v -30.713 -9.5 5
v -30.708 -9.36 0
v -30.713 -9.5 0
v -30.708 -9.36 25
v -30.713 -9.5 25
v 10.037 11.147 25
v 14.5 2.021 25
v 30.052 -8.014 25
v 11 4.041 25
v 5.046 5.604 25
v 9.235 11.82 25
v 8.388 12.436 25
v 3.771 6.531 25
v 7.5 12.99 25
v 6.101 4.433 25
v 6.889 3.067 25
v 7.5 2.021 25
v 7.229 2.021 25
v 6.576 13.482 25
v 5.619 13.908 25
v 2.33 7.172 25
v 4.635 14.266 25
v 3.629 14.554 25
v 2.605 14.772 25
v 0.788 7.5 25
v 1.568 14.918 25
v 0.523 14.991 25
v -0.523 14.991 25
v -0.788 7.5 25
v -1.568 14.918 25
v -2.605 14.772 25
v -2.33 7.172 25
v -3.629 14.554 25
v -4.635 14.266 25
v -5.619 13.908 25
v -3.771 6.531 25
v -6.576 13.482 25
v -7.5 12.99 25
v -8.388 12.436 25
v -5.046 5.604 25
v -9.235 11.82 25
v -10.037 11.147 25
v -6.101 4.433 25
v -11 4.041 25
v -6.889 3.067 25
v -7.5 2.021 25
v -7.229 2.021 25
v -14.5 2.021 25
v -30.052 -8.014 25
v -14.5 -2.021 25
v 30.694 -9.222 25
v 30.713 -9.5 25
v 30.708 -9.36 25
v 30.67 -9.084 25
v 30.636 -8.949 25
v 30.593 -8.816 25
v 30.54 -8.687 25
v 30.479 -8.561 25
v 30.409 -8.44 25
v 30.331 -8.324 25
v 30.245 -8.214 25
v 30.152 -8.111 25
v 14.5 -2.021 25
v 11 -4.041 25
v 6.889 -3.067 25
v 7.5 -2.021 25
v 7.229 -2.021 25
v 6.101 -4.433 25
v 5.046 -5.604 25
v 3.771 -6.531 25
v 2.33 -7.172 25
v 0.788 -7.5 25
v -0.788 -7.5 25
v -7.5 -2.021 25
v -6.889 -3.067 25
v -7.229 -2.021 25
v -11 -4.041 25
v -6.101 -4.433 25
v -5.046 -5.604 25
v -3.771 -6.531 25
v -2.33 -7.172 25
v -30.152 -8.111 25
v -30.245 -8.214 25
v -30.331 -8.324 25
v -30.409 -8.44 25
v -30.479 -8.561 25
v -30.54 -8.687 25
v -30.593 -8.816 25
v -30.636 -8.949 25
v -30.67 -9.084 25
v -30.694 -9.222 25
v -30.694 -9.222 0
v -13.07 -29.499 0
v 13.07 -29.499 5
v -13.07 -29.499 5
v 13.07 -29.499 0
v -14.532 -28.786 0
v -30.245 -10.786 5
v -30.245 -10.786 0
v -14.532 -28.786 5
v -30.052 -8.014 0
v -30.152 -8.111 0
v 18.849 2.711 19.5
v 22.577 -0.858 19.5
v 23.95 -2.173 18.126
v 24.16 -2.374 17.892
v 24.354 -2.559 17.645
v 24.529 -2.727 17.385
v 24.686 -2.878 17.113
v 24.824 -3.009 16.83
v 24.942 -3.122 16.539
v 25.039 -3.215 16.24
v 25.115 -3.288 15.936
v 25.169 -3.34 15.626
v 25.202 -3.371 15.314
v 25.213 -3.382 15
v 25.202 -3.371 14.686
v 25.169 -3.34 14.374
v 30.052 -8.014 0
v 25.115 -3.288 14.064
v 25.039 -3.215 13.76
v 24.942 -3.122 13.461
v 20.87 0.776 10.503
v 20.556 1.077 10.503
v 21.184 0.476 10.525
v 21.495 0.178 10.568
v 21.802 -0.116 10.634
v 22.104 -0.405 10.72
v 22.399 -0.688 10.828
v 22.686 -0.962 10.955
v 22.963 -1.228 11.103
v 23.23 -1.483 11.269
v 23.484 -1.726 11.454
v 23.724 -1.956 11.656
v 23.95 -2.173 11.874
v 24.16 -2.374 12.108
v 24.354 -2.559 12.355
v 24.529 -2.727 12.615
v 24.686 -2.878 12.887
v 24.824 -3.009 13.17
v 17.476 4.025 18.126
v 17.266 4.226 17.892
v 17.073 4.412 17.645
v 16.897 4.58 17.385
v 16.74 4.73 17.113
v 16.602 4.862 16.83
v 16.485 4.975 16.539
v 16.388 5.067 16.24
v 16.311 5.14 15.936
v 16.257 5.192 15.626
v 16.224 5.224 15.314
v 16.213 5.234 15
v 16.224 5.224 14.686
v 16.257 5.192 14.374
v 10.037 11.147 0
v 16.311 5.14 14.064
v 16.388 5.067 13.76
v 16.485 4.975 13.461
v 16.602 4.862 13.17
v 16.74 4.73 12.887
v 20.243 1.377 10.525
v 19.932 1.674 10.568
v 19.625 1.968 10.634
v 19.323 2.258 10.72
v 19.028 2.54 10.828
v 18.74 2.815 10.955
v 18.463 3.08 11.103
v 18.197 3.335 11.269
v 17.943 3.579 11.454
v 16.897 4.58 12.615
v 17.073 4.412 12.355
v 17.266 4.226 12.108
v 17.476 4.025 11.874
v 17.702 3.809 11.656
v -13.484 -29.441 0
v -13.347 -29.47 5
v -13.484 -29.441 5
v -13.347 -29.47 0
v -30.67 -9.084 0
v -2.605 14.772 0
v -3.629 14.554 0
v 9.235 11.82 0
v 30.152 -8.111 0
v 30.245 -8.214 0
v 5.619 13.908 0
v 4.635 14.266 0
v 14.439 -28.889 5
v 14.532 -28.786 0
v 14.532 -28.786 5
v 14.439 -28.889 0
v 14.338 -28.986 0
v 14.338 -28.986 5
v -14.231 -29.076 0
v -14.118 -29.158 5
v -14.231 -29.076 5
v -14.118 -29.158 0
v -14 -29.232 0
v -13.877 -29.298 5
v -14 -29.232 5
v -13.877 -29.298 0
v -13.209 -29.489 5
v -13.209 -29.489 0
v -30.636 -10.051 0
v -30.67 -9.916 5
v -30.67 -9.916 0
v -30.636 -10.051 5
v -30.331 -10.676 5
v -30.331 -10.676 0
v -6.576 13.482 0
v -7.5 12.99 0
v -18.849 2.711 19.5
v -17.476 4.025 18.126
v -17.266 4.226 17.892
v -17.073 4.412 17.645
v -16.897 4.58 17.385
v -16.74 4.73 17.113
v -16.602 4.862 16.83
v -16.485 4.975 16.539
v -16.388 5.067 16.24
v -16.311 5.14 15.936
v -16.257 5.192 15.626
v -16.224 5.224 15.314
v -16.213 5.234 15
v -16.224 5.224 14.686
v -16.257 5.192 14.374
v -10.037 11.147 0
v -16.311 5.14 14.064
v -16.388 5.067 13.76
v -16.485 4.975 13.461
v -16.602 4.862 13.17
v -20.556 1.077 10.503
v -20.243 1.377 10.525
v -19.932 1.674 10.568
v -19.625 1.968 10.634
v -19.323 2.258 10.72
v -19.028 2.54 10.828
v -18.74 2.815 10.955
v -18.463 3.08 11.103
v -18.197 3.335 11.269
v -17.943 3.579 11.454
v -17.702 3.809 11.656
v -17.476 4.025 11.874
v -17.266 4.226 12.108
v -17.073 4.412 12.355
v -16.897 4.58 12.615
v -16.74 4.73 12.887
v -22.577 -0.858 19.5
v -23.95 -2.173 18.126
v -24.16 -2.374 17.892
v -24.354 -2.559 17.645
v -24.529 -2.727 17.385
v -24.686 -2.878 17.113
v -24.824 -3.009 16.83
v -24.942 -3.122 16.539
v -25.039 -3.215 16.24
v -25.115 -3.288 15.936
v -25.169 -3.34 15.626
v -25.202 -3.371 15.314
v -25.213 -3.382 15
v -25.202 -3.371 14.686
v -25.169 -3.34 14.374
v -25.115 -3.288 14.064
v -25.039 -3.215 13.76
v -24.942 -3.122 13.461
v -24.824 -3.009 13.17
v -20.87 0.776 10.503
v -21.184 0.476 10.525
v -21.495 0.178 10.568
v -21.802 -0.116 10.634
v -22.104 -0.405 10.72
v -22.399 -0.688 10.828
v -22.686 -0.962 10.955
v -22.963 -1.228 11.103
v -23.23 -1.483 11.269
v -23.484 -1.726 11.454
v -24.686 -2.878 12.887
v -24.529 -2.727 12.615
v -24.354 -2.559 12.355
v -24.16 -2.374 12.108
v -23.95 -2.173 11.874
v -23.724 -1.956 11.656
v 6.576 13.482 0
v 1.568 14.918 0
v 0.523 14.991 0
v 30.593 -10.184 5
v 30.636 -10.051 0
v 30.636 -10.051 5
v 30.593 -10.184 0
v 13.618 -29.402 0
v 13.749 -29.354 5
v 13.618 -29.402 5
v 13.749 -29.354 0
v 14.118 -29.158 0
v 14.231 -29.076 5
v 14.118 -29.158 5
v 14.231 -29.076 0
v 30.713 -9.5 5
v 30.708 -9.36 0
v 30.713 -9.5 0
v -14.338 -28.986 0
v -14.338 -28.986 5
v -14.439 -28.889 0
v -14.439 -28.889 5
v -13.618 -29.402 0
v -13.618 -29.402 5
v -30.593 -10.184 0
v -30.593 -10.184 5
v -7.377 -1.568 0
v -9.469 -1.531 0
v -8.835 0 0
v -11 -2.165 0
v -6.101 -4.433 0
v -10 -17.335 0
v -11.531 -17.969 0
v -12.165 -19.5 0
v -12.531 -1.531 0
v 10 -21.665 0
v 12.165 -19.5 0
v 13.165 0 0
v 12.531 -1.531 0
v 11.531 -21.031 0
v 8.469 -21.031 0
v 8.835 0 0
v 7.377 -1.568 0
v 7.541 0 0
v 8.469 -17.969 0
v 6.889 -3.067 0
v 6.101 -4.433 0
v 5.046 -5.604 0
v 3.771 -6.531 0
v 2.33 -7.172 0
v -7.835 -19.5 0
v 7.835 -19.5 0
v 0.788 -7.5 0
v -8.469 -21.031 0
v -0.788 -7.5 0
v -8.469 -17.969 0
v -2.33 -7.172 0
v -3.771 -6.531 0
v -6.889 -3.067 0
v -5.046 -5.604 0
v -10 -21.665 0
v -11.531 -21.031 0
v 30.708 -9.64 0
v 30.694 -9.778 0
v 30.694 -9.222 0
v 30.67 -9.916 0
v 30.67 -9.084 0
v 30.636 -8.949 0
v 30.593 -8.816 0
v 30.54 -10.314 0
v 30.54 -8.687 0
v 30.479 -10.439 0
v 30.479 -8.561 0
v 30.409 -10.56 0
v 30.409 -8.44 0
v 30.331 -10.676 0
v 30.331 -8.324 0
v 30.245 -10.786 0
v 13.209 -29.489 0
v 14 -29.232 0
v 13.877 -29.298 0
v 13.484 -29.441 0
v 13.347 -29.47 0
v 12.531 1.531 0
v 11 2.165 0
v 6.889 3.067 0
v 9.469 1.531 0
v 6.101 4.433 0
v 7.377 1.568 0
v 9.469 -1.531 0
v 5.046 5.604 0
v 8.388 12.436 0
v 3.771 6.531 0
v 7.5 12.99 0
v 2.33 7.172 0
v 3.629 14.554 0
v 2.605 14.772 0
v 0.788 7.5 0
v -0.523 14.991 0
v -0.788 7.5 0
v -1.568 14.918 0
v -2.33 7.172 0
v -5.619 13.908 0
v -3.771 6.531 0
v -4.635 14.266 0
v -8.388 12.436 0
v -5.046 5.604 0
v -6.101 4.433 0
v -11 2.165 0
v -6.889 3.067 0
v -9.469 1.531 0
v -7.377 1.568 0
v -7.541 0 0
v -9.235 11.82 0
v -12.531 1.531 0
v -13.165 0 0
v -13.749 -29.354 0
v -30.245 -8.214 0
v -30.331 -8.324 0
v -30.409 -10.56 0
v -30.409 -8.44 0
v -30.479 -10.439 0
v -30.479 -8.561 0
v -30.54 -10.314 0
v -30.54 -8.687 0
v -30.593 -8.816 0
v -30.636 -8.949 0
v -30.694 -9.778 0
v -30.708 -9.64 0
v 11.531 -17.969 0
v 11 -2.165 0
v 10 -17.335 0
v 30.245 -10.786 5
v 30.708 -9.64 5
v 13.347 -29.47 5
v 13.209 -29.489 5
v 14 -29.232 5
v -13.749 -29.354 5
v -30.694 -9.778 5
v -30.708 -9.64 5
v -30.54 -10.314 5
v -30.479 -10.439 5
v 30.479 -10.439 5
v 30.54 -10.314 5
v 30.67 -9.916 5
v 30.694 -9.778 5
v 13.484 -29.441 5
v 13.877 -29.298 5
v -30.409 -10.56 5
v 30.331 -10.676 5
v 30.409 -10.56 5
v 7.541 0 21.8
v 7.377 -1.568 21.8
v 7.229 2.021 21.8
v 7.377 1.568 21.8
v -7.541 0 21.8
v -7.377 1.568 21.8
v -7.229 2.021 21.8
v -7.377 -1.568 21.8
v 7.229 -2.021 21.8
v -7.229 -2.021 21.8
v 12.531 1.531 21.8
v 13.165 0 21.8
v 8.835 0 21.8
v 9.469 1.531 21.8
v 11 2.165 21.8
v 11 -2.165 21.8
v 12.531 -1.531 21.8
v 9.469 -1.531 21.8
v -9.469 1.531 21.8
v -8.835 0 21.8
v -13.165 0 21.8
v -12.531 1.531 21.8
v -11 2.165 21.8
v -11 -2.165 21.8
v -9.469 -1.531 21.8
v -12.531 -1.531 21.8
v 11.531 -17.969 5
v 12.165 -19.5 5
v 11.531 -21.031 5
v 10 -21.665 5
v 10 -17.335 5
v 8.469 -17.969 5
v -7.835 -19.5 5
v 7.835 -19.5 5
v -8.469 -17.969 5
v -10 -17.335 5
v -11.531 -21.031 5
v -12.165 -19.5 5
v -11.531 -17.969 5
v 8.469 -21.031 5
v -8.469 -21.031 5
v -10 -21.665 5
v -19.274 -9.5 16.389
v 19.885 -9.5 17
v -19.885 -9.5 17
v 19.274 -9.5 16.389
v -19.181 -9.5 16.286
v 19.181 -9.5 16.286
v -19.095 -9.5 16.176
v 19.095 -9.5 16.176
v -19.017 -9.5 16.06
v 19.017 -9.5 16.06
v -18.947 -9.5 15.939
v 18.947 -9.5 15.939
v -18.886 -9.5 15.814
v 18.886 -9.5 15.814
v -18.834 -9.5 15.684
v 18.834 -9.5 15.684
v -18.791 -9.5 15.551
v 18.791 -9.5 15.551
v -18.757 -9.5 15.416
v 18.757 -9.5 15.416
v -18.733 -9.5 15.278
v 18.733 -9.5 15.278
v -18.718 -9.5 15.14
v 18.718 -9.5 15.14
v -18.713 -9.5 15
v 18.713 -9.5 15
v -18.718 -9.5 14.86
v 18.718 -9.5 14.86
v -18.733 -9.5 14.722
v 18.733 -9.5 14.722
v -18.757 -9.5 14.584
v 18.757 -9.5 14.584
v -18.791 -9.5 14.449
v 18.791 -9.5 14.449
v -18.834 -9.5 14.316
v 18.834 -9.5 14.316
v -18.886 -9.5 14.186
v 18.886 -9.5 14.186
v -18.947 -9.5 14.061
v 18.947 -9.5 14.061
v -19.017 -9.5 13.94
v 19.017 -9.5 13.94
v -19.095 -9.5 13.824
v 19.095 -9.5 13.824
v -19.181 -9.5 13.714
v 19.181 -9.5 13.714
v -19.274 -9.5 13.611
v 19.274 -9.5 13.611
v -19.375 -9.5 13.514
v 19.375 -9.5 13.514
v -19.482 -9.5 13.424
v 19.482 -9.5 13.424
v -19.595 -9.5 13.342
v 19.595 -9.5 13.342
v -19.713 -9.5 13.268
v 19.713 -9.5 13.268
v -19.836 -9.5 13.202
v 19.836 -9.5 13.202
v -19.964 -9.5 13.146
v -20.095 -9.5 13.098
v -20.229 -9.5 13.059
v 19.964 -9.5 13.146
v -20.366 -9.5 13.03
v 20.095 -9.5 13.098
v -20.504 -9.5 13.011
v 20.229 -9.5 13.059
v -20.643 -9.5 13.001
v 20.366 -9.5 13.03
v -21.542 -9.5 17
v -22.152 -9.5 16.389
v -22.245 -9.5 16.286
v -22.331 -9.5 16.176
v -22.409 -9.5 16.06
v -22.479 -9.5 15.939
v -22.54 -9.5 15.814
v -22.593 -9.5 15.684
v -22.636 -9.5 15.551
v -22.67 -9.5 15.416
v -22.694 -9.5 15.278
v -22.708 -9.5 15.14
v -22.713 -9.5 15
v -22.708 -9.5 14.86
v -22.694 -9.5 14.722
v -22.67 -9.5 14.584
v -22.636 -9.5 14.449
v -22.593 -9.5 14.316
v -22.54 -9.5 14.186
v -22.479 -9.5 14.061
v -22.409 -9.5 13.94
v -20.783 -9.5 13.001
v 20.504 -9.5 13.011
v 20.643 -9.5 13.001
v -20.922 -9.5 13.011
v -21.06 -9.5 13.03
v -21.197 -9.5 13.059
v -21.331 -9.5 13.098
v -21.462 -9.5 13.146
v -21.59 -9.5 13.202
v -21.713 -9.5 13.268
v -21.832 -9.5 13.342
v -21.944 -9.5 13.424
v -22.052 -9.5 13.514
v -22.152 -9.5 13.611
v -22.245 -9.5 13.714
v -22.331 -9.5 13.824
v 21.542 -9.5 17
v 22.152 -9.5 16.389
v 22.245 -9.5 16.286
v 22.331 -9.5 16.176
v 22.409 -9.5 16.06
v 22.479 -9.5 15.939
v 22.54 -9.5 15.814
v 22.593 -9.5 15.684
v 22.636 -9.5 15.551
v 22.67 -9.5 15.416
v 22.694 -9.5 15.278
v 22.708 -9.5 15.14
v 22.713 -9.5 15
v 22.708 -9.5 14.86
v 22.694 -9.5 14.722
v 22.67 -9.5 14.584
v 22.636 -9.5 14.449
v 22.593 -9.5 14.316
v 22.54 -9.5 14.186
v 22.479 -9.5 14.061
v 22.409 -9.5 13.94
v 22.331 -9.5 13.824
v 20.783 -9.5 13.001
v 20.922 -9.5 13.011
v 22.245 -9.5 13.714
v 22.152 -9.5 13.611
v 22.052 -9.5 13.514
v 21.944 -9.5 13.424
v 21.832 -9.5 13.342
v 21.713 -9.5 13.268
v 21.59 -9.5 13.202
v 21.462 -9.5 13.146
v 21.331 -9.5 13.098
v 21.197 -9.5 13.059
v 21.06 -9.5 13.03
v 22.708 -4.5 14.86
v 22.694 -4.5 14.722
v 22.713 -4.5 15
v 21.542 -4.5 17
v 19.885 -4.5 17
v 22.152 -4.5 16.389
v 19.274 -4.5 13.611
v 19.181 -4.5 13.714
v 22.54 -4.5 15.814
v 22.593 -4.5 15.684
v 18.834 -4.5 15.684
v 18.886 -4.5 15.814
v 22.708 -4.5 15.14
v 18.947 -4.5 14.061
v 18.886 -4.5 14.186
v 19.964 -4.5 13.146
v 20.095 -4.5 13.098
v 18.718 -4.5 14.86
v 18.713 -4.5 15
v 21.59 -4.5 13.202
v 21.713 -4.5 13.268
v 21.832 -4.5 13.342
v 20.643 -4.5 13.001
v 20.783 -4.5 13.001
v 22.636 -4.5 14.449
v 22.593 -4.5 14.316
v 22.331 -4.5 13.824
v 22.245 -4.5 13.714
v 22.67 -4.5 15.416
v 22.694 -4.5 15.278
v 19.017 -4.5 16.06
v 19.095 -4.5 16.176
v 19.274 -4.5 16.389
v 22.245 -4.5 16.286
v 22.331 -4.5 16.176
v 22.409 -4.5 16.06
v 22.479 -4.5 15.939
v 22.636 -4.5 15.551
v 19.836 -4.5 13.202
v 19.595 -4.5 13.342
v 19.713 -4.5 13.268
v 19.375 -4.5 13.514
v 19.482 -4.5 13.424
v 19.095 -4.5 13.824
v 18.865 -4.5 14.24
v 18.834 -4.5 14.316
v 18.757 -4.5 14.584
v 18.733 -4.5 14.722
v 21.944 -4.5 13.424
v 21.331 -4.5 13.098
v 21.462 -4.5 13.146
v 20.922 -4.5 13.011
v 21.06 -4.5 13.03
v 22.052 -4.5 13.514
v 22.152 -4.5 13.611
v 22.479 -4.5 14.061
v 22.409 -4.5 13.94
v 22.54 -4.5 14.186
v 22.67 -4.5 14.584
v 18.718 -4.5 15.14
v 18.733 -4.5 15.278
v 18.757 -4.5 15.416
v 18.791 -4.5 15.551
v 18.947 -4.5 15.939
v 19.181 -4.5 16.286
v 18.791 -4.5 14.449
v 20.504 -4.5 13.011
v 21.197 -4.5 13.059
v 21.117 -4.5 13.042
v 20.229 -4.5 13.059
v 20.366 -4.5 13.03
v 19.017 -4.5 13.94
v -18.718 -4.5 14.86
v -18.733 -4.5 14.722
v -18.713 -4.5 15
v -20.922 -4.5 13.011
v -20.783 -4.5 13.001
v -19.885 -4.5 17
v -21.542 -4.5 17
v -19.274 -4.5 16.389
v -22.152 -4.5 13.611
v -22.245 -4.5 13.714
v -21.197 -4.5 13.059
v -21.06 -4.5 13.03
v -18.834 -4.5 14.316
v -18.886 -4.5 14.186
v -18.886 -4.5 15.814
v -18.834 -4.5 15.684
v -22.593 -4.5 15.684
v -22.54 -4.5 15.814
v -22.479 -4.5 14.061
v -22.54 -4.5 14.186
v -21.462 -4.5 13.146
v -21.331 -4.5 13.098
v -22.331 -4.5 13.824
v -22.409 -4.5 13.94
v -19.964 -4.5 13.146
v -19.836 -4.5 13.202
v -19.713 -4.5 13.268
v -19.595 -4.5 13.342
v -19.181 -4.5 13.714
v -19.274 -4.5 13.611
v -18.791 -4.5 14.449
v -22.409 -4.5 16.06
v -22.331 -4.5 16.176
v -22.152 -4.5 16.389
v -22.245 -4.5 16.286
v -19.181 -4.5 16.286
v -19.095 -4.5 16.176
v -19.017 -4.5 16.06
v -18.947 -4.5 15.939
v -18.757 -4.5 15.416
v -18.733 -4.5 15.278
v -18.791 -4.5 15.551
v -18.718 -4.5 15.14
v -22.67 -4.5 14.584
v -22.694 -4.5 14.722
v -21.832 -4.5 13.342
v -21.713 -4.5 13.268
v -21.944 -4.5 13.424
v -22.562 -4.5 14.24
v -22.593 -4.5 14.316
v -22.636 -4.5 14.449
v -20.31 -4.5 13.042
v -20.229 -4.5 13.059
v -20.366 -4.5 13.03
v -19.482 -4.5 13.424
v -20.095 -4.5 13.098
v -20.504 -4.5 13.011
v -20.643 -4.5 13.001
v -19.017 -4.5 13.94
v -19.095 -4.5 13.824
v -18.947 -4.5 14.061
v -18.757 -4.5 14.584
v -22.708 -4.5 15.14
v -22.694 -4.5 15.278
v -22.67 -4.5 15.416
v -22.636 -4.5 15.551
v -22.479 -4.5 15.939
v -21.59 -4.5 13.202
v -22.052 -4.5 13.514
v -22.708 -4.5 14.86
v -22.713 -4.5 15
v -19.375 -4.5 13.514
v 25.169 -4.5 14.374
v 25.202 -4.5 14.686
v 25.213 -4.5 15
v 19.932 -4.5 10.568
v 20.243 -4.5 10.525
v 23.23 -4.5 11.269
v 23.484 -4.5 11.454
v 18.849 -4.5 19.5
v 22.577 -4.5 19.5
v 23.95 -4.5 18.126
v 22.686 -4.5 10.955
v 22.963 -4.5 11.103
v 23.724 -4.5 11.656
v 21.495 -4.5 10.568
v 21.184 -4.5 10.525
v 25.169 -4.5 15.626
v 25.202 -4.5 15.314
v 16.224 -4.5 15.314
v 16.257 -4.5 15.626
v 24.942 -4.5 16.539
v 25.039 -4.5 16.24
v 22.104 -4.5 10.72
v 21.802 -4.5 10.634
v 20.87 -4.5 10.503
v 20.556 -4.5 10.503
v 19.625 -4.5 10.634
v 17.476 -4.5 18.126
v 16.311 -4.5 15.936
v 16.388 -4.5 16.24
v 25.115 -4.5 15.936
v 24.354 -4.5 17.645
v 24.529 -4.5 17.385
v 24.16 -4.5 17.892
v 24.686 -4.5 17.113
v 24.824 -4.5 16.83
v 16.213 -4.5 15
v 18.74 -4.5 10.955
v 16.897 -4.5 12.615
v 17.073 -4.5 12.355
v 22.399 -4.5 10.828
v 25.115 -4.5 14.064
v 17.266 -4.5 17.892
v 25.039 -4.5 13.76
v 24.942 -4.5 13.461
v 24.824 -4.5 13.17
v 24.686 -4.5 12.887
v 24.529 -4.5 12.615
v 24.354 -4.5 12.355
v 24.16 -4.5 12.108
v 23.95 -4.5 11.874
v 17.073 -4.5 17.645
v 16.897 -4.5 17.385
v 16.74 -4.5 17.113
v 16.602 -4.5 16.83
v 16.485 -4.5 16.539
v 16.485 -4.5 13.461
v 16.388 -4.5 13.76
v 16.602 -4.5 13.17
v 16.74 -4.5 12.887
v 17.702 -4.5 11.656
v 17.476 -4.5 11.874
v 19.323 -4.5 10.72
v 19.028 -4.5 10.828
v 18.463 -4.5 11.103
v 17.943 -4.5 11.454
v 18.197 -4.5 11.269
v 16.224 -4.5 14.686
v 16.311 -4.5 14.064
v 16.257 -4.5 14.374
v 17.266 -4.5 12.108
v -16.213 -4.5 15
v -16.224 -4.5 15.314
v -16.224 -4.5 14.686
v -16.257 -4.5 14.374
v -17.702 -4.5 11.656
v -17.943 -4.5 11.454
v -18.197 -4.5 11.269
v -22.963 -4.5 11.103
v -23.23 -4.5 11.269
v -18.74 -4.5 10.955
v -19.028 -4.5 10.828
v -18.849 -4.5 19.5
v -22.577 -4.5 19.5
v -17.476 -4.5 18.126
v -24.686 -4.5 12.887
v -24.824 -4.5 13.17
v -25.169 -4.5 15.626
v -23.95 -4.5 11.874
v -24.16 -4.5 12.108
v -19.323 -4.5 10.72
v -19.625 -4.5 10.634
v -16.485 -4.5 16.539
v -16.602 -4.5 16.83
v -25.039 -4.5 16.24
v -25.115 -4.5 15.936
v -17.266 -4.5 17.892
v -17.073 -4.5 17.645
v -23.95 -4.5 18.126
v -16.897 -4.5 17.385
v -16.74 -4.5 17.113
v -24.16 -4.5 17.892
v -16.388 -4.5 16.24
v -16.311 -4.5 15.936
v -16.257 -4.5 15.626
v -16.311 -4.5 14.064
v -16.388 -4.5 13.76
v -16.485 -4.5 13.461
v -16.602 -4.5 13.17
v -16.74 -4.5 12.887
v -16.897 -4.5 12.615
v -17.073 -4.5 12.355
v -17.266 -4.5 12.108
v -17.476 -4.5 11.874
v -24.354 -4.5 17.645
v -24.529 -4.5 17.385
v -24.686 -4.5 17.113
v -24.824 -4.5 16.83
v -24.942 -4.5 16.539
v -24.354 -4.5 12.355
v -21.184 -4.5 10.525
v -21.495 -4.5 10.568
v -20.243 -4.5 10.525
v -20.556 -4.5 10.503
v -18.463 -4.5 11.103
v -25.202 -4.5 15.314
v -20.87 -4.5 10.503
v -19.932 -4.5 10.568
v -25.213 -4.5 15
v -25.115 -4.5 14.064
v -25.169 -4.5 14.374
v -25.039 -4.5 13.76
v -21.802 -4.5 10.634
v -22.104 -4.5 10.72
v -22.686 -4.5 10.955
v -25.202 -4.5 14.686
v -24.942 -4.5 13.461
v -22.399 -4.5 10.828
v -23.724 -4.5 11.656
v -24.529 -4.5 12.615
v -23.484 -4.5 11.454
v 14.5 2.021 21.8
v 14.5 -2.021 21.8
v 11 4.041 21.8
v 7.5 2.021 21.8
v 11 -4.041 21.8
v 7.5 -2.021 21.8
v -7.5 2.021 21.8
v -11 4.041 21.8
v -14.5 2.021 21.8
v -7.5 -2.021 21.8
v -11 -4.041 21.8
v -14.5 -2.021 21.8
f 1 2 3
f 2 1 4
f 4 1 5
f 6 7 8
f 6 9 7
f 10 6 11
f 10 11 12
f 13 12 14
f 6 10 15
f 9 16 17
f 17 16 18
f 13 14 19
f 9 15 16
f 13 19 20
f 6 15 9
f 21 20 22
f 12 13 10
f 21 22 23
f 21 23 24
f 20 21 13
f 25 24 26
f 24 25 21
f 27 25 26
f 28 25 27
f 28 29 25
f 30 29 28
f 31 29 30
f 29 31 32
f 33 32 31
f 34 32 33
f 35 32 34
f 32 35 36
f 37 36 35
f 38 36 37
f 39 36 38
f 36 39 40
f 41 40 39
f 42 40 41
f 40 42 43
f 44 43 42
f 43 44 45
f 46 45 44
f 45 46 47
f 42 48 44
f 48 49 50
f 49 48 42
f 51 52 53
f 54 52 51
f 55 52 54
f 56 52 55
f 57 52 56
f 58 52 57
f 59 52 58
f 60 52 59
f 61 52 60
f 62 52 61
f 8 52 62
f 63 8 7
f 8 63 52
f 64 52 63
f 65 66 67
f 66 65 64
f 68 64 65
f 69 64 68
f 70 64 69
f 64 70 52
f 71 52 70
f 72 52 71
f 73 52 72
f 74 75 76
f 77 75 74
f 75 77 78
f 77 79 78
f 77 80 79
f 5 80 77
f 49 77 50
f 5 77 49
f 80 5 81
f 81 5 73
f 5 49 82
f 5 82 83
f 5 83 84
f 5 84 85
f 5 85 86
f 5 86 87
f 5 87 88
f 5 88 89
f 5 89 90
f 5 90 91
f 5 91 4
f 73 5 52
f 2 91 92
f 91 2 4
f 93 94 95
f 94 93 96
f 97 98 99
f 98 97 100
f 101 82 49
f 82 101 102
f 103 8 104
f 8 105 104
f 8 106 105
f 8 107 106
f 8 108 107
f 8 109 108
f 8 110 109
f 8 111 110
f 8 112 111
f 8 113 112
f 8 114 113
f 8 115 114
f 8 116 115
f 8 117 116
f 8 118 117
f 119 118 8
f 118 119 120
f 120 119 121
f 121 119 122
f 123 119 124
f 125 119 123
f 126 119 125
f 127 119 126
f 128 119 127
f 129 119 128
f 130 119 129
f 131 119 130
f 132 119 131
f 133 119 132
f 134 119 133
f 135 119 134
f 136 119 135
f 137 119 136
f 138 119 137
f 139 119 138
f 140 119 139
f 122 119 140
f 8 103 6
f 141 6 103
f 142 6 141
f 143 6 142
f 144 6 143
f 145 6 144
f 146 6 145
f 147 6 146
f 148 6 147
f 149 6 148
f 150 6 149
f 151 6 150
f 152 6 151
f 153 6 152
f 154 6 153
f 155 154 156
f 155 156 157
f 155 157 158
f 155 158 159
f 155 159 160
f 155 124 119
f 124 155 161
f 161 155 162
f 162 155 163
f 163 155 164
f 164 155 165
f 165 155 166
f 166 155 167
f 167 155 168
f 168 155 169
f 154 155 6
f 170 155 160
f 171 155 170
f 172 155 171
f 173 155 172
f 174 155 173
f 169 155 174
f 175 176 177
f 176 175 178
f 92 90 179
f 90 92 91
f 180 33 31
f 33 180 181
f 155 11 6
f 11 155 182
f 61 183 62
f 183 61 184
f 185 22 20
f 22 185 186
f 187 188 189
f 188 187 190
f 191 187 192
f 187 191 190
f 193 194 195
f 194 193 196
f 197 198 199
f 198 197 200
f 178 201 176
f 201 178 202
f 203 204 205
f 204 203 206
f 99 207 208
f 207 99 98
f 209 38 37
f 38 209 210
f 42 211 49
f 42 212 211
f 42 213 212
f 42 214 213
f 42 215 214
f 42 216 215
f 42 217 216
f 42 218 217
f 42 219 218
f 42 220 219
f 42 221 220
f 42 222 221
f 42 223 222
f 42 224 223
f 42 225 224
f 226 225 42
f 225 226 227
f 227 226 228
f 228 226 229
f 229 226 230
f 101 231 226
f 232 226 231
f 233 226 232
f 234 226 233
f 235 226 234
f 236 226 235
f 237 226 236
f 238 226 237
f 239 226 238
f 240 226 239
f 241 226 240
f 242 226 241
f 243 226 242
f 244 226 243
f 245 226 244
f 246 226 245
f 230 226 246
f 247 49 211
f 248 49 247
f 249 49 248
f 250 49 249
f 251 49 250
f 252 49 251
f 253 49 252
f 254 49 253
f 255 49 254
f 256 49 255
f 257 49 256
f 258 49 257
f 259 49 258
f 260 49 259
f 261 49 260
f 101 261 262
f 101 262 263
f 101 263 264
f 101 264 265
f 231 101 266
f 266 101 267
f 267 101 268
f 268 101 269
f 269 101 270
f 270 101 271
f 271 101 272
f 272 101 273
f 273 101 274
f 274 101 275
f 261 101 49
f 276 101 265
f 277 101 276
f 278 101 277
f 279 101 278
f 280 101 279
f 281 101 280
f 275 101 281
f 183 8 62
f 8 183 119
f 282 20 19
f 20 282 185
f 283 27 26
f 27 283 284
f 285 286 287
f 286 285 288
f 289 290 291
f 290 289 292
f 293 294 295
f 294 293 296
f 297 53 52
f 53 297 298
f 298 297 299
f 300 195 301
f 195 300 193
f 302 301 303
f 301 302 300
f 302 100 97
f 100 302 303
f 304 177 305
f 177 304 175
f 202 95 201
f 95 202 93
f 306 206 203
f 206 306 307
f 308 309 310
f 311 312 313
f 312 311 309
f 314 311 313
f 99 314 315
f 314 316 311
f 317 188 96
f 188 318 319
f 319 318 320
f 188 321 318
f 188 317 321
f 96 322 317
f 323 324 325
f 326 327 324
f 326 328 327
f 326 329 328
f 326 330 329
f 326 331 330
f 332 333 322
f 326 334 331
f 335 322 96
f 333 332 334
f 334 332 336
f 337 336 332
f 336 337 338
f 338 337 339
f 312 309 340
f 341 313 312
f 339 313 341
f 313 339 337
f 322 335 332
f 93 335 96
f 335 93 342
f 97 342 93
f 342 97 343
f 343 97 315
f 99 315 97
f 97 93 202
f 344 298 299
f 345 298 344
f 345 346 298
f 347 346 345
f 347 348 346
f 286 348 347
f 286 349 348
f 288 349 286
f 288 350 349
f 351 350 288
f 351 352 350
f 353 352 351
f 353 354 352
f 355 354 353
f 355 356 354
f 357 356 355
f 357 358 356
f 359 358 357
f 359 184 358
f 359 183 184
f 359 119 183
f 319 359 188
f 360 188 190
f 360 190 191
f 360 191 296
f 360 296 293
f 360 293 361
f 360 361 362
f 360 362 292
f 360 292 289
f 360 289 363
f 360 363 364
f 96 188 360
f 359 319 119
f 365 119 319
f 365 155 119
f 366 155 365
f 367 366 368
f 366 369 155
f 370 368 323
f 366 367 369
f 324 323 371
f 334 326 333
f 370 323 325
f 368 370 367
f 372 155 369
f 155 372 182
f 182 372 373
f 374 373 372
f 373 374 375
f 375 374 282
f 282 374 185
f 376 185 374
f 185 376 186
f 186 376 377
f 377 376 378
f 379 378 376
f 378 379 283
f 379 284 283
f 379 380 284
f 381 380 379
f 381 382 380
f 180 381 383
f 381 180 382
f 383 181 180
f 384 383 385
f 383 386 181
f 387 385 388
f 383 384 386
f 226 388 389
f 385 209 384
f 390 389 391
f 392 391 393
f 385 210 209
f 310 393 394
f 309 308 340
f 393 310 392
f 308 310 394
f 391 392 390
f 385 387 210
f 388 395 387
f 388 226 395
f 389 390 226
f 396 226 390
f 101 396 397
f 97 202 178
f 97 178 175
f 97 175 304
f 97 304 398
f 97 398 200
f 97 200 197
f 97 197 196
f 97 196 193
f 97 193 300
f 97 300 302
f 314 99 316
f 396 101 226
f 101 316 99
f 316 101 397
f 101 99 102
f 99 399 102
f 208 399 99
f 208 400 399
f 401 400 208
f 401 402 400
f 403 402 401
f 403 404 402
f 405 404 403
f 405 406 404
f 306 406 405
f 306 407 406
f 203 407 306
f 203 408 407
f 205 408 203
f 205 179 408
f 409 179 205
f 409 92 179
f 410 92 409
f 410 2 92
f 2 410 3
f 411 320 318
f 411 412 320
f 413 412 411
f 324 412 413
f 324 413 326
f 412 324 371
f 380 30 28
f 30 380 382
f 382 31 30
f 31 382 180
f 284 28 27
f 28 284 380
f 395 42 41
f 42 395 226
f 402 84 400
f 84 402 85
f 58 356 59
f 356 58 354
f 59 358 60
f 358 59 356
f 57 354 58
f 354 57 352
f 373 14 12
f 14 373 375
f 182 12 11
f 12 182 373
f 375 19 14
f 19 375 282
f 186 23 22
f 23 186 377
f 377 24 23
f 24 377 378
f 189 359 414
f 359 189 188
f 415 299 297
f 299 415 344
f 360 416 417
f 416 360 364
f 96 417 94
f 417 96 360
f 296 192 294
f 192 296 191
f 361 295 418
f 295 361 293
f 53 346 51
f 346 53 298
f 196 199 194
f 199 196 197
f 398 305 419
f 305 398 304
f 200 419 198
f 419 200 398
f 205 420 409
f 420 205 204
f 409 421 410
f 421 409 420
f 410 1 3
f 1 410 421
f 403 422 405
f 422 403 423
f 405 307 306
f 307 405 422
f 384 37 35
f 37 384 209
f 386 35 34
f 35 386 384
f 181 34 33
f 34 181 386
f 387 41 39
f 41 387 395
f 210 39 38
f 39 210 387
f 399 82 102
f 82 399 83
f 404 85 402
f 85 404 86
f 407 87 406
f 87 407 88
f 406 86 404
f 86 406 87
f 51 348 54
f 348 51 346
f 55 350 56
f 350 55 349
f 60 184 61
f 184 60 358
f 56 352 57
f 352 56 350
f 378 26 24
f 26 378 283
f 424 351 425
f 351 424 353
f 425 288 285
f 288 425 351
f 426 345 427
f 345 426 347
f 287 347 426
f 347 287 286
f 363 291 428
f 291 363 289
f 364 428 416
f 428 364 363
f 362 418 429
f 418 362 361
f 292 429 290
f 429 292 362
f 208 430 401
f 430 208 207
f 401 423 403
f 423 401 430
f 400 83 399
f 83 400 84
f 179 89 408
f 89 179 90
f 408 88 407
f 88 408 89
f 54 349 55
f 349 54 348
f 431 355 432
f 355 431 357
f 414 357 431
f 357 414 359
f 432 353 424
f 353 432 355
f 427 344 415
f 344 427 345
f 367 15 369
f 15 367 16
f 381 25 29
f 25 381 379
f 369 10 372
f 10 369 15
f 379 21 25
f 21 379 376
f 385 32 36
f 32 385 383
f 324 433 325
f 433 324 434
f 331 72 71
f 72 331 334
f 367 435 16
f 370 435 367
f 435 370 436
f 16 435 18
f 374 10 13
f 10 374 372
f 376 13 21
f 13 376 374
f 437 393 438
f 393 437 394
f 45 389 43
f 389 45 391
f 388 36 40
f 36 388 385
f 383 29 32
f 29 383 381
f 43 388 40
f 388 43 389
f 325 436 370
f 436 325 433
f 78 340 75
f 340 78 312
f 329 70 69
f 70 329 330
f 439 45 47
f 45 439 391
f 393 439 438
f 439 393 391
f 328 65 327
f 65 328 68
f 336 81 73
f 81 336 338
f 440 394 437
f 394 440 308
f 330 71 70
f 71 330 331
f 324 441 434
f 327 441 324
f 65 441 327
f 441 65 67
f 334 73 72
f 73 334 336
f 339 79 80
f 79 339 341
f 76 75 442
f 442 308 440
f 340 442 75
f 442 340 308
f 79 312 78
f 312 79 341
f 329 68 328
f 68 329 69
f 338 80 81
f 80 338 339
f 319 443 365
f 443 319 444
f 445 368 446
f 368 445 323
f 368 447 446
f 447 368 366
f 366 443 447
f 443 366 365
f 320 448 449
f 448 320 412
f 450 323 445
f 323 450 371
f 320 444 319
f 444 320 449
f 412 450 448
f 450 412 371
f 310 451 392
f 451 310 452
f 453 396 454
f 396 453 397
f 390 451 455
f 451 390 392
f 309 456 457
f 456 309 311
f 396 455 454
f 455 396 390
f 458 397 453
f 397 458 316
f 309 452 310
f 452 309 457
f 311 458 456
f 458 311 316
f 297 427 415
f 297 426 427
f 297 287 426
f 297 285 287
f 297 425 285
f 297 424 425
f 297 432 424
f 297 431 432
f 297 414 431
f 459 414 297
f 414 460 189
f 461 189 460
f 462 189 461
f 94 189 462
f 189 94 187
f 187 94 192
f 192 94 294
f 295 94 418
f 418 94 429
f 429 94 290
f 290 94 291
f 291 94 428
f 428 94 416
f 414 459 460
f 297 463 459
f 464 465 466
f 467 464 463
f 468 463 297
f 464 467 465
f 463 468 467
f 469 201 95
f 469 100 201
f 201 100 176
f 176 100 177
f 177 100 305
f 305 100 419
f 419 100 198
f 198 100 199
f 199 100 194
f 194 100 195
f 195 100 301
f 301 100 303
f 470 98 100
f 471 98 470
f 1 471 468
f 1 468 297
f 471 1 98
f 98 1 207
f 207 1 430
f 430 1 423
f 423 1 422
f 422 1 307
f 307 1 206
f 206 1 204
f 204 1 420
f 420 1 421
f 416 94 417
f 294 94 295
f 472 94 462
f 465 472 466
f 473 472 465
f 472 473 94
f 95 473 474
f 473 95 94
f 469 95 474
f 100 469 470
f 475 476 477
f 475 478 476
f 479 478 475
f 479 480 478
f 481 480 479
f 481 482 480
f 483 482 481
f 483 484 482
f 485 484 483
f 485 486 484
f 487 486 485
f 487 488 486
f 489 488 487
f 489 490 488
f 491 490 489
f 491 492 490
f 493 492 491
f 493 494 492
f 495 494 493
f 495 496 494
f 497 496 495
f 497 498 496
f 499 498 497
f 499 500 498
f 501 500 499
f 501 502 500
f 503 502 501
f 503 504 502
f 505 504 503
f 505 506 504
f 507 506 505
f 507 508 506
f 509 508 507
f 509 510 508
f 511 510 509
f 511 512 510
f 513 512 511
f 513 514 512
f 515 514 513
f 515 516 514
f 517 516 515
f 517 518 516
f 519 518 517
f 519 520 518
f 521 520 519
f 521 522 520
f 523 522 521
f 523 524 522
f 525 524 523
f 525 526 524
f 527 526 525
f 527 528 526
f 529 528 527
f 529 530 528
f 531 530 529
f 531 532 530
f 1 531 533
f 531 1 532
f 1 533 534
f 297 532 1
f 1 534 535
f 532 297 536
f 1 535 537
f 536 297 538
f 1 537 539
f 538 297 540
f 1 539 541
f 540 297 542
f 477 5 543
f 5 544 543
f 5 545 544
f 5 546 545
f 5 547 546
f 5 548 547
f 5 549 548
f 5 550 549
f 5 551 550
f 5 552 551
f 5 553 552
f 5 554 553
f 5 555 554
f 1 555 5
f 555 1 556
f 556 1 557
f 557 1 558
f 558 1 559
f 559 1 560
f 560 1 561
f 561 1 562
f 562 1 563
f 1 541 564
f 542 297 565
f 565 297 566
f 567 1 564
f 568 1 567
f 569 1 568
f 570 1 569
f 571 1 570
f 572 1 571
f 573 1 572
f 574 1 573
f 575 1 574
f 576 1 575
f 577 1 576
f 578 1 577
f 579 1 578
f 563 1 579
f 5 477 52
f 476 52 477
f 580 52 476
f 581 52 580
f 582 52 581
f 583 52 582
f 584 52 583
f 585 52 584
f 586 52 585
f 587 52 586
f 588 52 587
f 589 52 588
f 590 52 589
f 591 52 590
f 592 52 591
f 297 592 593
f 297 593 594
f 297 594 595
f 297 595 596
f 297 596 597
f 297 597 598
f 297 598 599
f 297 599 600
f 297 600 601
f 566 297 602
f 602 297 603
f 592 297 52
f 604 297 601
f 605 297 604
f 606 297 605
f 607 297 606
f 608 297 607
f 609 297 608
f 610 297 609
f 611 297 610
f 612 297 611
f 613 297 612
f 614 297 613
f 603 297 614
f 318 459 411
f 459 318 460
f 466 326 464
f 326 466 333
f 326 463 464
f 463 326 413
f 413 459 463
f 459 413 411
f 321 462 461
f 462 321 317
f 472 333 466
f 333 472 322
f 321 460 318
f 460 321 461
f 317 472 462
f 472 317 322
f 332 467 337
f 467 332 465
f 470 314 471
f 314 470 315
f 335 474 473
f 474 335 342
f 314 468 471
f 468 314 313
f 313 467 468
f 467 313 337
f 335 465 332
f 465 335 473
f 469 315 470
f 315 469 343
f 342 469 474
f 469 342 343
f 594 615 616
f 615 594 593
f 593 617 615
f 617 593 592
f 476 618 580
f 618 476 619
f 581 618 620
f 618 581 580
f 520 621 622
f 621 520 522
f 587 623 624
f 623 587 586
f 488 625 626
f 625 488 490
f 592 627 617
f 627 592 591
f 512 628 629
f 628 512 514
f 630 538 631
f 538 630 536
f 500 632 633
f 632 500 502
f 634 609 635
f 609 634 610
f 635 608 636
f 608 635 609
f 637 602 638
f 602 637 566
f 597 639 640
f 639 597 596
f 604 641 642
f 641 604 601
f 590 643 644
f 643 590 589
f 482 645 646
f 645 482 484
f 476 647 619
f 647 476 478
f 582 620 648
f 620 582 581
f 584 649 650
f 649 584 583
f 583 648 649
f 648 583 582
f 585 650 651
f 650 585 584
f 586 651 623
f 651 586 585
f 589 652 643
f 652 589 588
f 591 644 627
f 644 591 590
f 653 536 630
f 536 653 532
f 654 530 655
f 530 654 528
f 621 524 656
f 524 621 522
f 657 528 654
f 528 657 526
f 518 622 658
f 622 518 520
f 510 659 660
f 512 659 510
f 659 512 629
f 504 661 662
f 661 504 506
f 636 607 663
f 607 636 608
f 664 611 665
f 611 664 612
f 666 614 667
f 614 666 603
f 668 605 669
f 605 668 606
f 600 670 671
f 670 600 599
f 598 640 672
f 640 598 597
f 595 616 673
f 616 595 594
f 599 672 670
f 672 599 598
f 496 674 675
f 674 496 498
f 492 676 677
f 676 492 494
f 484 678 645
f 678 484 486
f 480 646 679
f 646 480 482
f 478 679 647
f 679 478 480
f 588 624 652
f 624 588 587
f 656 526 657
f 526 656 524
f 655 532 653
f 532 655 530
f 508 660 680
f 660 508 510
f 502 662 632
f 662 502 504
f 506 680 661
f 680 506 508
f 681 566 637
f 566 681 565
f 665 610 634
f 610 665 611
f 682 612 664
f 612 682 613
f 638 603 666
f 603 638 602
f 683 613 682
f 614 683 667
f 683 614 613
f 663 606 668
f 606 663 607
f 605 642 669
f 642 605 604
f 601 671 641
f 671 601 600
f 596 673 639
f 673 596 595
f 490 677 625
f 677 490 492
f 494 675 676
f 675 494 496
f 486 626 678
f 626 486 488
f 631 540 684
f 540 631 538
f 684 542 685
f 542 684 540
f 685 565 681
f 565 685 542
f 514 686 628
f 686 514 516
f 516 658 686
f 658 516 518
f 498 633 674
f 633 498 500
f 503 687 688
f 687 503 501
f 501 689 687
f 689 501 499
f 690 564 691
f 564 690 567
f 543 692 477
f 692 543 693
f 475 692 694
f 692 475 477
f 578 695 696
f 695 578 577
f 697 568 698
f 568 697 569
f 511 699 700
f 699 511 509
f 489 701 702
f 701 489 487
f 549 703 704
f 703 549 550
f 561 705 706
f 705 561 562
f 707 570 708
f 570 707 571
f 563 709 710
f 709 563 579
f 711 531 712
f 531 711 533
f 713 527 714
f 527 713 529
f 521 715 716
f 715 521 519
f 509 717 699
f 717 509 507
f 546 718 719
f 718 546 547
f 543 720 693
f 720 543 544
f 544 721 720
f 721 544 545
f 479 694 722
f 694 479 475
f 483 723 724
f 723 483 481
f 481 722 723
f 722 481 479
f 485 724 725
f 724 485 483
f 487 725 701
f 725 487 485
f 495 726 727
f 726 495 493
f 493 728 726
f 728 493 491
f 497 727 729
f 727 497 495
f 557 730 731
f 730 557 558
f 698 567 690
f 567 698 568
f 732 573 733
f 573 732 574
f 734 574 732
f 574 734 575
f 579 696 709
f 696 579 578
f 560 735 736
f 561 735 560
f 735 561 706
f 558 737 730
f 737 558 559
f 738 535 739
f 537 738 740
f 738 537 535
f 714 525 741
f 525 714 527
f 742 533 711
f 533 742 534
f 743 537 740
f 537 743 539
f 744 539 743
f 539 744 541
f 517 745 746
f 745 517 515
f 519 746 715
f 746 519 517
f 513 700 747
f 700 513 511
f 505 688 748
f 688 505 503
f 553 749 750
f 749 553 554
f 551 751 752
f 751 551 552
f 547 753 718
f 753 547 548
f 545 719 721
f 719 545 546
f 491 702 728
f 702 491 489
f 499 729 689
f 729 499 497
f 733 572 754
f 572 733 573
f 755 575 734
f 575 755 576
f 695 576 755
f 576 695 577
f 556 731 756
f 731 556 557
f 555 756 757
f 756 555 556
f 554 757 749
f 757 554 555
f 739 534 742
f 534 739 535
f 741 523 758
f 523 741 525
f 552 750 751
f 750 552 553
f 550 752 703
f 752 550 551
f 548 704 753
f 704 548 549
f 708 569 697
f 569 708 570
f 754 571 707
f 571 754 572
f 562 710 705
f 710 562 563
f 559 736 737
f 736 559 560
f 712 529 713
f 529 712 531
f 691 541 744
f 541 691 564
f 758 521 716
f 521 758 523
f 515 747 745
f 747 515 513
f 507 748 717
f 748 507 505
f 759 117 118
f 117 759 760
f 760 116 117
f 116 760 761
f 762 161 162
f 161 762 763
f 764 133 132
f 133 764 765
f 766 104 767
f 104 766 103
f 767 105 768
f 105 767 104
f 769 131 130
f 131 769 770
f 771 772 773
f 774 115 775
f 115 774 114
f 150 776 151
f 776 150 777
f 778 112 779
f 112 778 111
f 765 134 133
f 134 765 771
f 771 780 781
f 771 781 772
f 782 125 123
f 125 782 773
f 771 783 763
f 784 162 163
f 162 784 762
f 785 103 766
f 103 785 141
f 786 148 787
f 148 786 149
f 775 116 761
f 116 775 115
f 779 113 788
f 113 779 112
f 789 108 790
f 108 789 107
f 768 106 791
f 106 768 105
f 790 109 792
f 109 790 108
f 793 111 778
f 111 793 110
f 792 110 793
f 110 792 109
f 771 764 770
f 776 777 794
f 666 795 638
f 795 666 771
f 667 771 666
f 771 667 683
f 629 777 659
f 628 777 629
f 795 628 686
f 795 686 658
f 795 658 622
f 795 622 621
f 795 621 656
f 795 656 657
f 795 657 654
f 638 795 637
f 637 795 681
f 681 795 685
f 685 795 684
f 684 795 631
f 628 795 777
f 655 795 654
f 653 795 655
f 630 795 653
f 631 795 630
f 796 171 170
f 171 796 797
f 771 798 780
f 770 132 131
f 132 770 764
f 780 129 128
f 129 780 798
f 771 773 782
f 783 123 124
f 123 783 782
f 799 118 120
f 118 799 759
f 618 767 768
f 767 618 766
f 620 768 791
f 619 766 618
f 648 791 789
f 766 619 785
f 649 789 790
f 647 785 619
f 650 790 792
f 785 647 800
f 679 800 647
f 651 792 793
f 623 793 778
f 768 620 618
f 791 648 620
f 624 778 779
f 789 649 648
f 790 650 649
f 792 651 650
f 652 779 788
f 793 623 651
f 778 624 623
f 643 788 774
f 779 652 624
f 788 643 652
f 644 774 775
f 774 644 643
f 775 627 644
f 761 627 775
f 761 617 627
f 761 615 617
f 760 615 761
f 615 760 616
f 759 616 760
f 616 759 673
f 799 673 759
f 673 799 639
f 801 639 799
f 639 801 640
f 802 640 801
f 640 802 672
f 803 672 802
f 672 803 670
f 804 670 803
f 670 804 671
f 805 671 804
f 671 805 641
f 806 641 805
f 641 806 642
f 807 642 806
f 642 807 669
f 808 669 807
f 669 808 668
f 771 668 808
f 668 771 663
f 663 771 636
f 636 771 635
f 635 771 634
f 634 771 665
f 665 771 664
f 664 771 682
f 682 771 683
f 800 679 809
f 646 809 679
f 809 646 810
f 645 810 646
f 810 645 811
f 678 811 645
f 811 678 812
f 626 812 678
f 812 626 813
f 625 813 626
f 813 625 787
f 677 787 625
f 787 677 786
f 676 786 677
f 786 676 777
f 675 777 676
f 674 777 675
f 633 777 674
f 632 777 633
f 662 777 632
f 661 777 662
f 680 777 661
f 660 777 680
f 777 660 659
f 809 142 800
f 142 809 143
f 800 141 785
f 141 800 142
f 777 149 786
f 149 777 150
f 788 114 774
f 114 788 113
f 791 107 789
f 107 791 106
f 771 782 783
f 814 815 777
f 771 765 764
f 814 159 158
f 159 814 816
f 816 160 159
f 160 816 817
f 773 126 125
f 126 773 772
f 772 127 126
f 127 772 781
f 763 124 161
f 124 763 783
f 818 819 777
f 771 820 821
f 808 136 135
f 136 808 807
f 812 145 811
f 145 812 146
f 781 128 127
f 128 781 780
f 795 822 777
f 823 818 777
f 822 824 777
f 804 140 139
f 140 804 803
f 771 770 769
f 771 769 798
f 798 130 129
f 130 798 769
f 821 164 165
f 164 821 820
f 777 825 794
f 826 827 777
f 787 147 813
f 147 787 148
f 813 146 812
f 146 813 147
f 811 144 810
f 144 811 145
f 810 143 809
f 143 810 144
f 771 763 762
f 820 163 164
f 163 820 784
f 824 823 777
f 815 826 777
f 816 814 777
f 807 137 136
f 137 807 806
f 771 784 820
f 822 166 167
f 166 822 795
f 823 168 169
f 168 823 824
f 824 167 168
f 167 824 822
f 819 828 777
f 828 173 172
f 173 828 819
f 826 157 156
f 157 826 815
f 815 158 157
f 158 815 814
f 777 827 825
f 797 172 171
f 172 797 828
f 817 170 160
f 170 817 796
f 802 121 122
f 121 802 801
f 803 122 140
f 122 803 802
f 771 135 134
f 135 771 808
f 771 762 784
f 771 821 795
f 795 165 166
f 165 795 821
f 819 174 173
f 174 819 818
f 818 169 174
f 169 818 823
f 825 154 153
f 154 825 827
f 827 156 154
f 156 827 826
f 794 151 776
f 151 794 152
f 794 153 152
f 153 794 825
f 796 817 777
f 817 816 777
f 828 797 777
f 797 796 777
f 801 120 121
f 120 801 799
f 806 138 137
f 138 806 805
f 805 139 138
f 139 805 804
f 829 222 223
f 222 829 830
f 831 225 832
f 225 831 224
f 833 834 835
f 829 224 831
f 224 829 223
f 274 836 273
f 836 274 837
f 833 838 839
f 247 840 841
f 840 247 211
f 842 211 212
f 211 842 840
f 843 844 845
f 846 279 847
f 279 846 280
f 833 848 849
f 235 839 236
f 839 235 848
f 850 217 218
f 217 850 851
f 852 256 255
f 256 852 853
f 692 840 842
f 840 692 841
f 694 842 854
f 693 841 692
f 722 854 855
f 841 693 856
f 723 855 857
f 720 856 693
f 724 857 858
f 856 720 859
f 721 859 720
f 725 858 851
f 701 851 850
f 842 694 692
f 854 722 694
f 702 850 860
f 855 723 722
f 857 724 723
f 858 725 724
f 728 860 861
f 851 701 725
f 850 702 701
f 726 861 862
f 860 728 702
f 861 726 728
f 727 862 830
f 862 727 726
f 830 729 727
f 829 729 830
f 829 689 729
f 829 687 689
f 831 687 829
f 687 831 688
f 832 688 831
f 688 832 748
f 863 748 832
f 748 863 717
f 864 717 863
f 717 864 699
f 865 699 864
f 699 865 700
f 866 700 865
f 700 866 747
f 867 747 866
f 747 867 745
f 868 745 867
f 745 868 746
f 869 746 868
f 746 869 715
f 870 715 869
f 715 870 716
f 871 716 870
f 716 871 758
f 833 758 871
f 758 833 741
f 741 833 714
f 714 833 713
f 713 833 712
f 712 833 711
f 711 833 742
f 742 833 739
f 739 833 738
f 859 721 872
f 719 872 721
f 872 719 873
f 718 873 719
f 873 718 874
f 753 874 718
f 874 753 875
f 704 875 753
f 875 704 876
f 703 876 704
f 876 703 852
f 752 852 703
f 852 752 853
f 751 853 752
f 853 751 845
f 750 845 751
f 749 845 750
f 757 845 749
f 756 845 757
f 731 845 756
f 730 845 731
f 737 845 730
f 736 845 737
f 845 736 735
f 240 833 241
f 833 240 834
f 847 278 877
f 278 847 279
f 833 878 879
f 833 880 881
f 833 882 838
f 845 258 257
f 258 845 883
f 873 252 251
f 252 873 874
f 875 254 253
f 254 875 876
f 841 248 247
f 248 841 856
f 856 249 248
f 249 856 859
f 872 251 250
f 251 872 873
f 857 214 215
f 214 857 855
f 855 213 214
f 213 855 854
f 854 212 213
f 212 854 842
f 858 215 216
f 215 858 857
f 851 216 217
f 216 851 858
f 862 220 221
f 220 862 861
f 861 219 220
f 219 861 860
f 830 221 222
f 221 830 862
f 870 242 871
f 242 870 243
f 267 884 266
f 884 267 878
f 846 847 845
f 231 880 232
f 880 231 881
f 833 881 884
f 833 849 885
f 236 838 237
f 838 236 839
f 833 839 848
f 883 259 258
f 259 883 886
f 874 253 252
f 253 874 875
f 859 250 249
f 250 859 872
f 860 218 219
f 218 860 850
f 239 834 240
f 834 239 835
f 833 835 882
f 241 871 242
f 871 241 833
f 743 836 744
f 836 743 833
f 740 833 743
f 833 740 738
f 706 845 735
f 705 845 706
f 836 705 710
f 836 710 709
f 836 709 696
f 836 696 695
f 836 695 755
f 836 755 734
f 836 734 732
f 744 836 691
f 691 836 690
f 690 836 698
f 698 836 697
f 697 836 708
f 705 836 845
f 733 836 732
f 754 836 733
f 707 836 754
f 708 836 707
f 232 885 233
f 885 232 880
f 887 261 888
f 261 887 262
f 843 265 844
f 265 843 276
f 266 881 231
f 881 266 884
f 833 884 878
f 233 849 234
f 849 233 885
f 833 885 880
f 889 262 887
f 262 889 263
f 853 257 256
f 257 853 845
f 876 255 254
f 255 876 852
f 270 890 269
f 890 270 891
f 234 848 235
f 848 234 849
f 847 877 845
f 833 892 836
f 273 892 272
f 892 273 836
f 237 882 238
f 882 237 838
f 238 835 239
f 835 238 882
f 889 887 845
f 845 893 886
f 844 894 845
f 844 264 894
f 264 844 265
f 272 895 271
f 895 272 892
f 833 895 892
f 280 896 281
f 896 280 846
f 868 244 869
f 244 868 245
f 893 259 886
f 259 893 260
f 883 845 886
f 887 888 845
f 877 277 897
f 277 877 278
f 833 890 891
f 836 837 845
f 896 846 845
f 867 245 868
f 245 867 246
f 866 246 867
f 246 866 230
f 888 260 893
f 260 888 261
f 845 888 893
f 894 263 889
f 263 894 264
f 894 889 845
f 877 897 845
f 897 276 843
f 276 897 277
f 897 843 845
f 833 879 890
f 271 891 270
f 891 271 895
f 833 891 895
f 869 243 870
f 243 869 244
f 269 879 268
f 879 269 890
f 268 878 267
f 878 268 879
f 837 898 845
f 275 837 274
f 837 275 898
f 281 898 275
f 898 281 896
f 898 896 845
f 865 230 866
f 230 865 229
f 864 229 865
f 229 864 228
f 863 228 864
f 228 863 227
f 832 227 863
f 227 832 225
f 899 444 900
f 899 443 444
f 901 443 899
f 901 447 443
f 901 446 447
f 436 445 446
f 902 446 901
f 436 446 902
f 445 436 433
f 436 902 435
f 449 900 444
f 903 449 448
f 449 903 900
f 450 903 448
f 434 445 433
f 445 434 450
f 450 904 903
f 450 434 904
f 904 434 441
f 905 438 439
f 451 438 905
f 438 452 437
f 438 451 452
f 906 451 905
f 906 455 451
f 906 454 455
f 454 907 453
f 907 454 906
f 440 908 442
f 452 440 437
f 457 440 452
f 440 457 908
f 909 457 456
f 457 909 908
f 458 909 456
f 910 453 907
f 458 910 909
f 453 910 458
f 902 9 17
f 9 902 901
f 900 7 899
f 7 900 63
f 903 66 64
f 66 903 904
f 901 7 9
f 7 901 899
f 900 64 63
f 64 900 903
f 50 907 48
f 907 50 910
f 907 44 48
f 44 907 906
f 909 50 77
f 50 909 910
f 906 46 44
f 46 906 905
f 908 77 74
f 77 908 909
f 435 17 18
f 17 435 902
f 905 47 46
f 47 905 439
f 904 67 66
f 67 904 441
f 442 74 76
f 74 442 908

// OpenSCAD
// file: ../nutShape.scad
// a nut shape that takes height and width across flats as input.

nutShape(6, 3);

module nutShape(w, h)
{
    rotate_extrude($fn = 6)
        square([((w / 2) / (cos(30))), h], center = false);
}
// file: ../trunctear.scad
//A module for truncated tear drops.

trunctear(1, 0.5, $fn = 90);

module trunctear(hei, radian, cent = false)
{
    linear_extrude(height = hei, center = cent)
        hull()
        {
            circle(r = radian);
            translate([0, radian/2])
                square([2*(radian*(2*cos(45)-1)), radian], center = true);
        }
}
// file: ../polyhole.scad
// The Cylinder is dead! Long live the Cylinder!
// A module for a polyhole by radius, based on Nophead's work.

module polyhole(h, r, cent = false)
{
    n = max(round(4 * r), 3);
    cylinder(h = h, r = r / cos(180 / n), $fn = n, center = cent);
}
// main file
// used to mount the lead screw nut

use<../polyhole.scad>
use<../trunctear.scad>
use<../nutShape.scad>

NutMount();

module NutMount()
{
    difference()
    {
        union()
        {
            hull()
            {
                cylinder(h = 25, r = 30/2, $fn = 90);
                translate([(30/2*sqrt(2)+15/2+2)-2, -15/2-2, 0])
                    cylinder(h = 25, r = 2, $fn = 90);
                translate([-(30/2*sqrt(2)+15/2+2)+2, -15/2-2, 0])
                    cylinder(h = 25, r = 2, $fn = 90);
                translate([30/2-2, -20-15/2, 0])
                    cylinder(h = 25, r = 2, $fn = 90);
                translate([-30/2+2, -20-15/2, 0])
                    cylinder(h = 25, r = 2, $fn = 90);
            }
        }
        rotate([0, 0, 0])
            polyhole(25, 15/2);
        translate([22/2, 0, 0])
            polyhole(25, 2);
        translate([-22/2, 0, 0])
            polyhole(25, 2);
        translate([0, -10-15/2-2, 10+5])
            cube([2*(30/2*sqrt(2)+13), 20, 20], center = true);
        translate([30/2-5, -10-15/2-2, 0])
            polyhole(5, 2);
        translate([-30/2+5, -10-15/2-2, 0])
            polyhole(5, 2);
        translate([(30/2*sqrt(2)+15/2+2-10), -15/2-2, 15])
            rotate([90, 0, 180])
                trunctear(44, 2, $fn = 90);
        translate([-(30/2*sqrt(2)+15/2+2-10), -15/2-2, 15])
            rotate([90, 0, 180])
                trunctear(44, 2, $fn = 90);
        translate([(30/2*sqrt(2)+15/2+2-10), -15/2-2+5, 15])
            rotate([90, 0, 180])
                trunctear(44, 9/2, $fn = 90);
        translate([-(30/2*sqrt(2)+15/2+2-10), -15/2-2+5, 15])
            rotate([90, 0, 180])
                trunctear(44, 9/2, $fn = 90);
        translate([22/2, 0, 25-3.2])
            rotate([0, 0, 30])
                nutShape(7, 3.2);
        translate([-22/2, 0, 25-3.2])
            rotate([0, 0, 30])
                nutShape(7, 3.2);
        translate([0, 0, 25])
            cube([22, 7/sqrt(3), 2*3.2], center = true);
    }
}
